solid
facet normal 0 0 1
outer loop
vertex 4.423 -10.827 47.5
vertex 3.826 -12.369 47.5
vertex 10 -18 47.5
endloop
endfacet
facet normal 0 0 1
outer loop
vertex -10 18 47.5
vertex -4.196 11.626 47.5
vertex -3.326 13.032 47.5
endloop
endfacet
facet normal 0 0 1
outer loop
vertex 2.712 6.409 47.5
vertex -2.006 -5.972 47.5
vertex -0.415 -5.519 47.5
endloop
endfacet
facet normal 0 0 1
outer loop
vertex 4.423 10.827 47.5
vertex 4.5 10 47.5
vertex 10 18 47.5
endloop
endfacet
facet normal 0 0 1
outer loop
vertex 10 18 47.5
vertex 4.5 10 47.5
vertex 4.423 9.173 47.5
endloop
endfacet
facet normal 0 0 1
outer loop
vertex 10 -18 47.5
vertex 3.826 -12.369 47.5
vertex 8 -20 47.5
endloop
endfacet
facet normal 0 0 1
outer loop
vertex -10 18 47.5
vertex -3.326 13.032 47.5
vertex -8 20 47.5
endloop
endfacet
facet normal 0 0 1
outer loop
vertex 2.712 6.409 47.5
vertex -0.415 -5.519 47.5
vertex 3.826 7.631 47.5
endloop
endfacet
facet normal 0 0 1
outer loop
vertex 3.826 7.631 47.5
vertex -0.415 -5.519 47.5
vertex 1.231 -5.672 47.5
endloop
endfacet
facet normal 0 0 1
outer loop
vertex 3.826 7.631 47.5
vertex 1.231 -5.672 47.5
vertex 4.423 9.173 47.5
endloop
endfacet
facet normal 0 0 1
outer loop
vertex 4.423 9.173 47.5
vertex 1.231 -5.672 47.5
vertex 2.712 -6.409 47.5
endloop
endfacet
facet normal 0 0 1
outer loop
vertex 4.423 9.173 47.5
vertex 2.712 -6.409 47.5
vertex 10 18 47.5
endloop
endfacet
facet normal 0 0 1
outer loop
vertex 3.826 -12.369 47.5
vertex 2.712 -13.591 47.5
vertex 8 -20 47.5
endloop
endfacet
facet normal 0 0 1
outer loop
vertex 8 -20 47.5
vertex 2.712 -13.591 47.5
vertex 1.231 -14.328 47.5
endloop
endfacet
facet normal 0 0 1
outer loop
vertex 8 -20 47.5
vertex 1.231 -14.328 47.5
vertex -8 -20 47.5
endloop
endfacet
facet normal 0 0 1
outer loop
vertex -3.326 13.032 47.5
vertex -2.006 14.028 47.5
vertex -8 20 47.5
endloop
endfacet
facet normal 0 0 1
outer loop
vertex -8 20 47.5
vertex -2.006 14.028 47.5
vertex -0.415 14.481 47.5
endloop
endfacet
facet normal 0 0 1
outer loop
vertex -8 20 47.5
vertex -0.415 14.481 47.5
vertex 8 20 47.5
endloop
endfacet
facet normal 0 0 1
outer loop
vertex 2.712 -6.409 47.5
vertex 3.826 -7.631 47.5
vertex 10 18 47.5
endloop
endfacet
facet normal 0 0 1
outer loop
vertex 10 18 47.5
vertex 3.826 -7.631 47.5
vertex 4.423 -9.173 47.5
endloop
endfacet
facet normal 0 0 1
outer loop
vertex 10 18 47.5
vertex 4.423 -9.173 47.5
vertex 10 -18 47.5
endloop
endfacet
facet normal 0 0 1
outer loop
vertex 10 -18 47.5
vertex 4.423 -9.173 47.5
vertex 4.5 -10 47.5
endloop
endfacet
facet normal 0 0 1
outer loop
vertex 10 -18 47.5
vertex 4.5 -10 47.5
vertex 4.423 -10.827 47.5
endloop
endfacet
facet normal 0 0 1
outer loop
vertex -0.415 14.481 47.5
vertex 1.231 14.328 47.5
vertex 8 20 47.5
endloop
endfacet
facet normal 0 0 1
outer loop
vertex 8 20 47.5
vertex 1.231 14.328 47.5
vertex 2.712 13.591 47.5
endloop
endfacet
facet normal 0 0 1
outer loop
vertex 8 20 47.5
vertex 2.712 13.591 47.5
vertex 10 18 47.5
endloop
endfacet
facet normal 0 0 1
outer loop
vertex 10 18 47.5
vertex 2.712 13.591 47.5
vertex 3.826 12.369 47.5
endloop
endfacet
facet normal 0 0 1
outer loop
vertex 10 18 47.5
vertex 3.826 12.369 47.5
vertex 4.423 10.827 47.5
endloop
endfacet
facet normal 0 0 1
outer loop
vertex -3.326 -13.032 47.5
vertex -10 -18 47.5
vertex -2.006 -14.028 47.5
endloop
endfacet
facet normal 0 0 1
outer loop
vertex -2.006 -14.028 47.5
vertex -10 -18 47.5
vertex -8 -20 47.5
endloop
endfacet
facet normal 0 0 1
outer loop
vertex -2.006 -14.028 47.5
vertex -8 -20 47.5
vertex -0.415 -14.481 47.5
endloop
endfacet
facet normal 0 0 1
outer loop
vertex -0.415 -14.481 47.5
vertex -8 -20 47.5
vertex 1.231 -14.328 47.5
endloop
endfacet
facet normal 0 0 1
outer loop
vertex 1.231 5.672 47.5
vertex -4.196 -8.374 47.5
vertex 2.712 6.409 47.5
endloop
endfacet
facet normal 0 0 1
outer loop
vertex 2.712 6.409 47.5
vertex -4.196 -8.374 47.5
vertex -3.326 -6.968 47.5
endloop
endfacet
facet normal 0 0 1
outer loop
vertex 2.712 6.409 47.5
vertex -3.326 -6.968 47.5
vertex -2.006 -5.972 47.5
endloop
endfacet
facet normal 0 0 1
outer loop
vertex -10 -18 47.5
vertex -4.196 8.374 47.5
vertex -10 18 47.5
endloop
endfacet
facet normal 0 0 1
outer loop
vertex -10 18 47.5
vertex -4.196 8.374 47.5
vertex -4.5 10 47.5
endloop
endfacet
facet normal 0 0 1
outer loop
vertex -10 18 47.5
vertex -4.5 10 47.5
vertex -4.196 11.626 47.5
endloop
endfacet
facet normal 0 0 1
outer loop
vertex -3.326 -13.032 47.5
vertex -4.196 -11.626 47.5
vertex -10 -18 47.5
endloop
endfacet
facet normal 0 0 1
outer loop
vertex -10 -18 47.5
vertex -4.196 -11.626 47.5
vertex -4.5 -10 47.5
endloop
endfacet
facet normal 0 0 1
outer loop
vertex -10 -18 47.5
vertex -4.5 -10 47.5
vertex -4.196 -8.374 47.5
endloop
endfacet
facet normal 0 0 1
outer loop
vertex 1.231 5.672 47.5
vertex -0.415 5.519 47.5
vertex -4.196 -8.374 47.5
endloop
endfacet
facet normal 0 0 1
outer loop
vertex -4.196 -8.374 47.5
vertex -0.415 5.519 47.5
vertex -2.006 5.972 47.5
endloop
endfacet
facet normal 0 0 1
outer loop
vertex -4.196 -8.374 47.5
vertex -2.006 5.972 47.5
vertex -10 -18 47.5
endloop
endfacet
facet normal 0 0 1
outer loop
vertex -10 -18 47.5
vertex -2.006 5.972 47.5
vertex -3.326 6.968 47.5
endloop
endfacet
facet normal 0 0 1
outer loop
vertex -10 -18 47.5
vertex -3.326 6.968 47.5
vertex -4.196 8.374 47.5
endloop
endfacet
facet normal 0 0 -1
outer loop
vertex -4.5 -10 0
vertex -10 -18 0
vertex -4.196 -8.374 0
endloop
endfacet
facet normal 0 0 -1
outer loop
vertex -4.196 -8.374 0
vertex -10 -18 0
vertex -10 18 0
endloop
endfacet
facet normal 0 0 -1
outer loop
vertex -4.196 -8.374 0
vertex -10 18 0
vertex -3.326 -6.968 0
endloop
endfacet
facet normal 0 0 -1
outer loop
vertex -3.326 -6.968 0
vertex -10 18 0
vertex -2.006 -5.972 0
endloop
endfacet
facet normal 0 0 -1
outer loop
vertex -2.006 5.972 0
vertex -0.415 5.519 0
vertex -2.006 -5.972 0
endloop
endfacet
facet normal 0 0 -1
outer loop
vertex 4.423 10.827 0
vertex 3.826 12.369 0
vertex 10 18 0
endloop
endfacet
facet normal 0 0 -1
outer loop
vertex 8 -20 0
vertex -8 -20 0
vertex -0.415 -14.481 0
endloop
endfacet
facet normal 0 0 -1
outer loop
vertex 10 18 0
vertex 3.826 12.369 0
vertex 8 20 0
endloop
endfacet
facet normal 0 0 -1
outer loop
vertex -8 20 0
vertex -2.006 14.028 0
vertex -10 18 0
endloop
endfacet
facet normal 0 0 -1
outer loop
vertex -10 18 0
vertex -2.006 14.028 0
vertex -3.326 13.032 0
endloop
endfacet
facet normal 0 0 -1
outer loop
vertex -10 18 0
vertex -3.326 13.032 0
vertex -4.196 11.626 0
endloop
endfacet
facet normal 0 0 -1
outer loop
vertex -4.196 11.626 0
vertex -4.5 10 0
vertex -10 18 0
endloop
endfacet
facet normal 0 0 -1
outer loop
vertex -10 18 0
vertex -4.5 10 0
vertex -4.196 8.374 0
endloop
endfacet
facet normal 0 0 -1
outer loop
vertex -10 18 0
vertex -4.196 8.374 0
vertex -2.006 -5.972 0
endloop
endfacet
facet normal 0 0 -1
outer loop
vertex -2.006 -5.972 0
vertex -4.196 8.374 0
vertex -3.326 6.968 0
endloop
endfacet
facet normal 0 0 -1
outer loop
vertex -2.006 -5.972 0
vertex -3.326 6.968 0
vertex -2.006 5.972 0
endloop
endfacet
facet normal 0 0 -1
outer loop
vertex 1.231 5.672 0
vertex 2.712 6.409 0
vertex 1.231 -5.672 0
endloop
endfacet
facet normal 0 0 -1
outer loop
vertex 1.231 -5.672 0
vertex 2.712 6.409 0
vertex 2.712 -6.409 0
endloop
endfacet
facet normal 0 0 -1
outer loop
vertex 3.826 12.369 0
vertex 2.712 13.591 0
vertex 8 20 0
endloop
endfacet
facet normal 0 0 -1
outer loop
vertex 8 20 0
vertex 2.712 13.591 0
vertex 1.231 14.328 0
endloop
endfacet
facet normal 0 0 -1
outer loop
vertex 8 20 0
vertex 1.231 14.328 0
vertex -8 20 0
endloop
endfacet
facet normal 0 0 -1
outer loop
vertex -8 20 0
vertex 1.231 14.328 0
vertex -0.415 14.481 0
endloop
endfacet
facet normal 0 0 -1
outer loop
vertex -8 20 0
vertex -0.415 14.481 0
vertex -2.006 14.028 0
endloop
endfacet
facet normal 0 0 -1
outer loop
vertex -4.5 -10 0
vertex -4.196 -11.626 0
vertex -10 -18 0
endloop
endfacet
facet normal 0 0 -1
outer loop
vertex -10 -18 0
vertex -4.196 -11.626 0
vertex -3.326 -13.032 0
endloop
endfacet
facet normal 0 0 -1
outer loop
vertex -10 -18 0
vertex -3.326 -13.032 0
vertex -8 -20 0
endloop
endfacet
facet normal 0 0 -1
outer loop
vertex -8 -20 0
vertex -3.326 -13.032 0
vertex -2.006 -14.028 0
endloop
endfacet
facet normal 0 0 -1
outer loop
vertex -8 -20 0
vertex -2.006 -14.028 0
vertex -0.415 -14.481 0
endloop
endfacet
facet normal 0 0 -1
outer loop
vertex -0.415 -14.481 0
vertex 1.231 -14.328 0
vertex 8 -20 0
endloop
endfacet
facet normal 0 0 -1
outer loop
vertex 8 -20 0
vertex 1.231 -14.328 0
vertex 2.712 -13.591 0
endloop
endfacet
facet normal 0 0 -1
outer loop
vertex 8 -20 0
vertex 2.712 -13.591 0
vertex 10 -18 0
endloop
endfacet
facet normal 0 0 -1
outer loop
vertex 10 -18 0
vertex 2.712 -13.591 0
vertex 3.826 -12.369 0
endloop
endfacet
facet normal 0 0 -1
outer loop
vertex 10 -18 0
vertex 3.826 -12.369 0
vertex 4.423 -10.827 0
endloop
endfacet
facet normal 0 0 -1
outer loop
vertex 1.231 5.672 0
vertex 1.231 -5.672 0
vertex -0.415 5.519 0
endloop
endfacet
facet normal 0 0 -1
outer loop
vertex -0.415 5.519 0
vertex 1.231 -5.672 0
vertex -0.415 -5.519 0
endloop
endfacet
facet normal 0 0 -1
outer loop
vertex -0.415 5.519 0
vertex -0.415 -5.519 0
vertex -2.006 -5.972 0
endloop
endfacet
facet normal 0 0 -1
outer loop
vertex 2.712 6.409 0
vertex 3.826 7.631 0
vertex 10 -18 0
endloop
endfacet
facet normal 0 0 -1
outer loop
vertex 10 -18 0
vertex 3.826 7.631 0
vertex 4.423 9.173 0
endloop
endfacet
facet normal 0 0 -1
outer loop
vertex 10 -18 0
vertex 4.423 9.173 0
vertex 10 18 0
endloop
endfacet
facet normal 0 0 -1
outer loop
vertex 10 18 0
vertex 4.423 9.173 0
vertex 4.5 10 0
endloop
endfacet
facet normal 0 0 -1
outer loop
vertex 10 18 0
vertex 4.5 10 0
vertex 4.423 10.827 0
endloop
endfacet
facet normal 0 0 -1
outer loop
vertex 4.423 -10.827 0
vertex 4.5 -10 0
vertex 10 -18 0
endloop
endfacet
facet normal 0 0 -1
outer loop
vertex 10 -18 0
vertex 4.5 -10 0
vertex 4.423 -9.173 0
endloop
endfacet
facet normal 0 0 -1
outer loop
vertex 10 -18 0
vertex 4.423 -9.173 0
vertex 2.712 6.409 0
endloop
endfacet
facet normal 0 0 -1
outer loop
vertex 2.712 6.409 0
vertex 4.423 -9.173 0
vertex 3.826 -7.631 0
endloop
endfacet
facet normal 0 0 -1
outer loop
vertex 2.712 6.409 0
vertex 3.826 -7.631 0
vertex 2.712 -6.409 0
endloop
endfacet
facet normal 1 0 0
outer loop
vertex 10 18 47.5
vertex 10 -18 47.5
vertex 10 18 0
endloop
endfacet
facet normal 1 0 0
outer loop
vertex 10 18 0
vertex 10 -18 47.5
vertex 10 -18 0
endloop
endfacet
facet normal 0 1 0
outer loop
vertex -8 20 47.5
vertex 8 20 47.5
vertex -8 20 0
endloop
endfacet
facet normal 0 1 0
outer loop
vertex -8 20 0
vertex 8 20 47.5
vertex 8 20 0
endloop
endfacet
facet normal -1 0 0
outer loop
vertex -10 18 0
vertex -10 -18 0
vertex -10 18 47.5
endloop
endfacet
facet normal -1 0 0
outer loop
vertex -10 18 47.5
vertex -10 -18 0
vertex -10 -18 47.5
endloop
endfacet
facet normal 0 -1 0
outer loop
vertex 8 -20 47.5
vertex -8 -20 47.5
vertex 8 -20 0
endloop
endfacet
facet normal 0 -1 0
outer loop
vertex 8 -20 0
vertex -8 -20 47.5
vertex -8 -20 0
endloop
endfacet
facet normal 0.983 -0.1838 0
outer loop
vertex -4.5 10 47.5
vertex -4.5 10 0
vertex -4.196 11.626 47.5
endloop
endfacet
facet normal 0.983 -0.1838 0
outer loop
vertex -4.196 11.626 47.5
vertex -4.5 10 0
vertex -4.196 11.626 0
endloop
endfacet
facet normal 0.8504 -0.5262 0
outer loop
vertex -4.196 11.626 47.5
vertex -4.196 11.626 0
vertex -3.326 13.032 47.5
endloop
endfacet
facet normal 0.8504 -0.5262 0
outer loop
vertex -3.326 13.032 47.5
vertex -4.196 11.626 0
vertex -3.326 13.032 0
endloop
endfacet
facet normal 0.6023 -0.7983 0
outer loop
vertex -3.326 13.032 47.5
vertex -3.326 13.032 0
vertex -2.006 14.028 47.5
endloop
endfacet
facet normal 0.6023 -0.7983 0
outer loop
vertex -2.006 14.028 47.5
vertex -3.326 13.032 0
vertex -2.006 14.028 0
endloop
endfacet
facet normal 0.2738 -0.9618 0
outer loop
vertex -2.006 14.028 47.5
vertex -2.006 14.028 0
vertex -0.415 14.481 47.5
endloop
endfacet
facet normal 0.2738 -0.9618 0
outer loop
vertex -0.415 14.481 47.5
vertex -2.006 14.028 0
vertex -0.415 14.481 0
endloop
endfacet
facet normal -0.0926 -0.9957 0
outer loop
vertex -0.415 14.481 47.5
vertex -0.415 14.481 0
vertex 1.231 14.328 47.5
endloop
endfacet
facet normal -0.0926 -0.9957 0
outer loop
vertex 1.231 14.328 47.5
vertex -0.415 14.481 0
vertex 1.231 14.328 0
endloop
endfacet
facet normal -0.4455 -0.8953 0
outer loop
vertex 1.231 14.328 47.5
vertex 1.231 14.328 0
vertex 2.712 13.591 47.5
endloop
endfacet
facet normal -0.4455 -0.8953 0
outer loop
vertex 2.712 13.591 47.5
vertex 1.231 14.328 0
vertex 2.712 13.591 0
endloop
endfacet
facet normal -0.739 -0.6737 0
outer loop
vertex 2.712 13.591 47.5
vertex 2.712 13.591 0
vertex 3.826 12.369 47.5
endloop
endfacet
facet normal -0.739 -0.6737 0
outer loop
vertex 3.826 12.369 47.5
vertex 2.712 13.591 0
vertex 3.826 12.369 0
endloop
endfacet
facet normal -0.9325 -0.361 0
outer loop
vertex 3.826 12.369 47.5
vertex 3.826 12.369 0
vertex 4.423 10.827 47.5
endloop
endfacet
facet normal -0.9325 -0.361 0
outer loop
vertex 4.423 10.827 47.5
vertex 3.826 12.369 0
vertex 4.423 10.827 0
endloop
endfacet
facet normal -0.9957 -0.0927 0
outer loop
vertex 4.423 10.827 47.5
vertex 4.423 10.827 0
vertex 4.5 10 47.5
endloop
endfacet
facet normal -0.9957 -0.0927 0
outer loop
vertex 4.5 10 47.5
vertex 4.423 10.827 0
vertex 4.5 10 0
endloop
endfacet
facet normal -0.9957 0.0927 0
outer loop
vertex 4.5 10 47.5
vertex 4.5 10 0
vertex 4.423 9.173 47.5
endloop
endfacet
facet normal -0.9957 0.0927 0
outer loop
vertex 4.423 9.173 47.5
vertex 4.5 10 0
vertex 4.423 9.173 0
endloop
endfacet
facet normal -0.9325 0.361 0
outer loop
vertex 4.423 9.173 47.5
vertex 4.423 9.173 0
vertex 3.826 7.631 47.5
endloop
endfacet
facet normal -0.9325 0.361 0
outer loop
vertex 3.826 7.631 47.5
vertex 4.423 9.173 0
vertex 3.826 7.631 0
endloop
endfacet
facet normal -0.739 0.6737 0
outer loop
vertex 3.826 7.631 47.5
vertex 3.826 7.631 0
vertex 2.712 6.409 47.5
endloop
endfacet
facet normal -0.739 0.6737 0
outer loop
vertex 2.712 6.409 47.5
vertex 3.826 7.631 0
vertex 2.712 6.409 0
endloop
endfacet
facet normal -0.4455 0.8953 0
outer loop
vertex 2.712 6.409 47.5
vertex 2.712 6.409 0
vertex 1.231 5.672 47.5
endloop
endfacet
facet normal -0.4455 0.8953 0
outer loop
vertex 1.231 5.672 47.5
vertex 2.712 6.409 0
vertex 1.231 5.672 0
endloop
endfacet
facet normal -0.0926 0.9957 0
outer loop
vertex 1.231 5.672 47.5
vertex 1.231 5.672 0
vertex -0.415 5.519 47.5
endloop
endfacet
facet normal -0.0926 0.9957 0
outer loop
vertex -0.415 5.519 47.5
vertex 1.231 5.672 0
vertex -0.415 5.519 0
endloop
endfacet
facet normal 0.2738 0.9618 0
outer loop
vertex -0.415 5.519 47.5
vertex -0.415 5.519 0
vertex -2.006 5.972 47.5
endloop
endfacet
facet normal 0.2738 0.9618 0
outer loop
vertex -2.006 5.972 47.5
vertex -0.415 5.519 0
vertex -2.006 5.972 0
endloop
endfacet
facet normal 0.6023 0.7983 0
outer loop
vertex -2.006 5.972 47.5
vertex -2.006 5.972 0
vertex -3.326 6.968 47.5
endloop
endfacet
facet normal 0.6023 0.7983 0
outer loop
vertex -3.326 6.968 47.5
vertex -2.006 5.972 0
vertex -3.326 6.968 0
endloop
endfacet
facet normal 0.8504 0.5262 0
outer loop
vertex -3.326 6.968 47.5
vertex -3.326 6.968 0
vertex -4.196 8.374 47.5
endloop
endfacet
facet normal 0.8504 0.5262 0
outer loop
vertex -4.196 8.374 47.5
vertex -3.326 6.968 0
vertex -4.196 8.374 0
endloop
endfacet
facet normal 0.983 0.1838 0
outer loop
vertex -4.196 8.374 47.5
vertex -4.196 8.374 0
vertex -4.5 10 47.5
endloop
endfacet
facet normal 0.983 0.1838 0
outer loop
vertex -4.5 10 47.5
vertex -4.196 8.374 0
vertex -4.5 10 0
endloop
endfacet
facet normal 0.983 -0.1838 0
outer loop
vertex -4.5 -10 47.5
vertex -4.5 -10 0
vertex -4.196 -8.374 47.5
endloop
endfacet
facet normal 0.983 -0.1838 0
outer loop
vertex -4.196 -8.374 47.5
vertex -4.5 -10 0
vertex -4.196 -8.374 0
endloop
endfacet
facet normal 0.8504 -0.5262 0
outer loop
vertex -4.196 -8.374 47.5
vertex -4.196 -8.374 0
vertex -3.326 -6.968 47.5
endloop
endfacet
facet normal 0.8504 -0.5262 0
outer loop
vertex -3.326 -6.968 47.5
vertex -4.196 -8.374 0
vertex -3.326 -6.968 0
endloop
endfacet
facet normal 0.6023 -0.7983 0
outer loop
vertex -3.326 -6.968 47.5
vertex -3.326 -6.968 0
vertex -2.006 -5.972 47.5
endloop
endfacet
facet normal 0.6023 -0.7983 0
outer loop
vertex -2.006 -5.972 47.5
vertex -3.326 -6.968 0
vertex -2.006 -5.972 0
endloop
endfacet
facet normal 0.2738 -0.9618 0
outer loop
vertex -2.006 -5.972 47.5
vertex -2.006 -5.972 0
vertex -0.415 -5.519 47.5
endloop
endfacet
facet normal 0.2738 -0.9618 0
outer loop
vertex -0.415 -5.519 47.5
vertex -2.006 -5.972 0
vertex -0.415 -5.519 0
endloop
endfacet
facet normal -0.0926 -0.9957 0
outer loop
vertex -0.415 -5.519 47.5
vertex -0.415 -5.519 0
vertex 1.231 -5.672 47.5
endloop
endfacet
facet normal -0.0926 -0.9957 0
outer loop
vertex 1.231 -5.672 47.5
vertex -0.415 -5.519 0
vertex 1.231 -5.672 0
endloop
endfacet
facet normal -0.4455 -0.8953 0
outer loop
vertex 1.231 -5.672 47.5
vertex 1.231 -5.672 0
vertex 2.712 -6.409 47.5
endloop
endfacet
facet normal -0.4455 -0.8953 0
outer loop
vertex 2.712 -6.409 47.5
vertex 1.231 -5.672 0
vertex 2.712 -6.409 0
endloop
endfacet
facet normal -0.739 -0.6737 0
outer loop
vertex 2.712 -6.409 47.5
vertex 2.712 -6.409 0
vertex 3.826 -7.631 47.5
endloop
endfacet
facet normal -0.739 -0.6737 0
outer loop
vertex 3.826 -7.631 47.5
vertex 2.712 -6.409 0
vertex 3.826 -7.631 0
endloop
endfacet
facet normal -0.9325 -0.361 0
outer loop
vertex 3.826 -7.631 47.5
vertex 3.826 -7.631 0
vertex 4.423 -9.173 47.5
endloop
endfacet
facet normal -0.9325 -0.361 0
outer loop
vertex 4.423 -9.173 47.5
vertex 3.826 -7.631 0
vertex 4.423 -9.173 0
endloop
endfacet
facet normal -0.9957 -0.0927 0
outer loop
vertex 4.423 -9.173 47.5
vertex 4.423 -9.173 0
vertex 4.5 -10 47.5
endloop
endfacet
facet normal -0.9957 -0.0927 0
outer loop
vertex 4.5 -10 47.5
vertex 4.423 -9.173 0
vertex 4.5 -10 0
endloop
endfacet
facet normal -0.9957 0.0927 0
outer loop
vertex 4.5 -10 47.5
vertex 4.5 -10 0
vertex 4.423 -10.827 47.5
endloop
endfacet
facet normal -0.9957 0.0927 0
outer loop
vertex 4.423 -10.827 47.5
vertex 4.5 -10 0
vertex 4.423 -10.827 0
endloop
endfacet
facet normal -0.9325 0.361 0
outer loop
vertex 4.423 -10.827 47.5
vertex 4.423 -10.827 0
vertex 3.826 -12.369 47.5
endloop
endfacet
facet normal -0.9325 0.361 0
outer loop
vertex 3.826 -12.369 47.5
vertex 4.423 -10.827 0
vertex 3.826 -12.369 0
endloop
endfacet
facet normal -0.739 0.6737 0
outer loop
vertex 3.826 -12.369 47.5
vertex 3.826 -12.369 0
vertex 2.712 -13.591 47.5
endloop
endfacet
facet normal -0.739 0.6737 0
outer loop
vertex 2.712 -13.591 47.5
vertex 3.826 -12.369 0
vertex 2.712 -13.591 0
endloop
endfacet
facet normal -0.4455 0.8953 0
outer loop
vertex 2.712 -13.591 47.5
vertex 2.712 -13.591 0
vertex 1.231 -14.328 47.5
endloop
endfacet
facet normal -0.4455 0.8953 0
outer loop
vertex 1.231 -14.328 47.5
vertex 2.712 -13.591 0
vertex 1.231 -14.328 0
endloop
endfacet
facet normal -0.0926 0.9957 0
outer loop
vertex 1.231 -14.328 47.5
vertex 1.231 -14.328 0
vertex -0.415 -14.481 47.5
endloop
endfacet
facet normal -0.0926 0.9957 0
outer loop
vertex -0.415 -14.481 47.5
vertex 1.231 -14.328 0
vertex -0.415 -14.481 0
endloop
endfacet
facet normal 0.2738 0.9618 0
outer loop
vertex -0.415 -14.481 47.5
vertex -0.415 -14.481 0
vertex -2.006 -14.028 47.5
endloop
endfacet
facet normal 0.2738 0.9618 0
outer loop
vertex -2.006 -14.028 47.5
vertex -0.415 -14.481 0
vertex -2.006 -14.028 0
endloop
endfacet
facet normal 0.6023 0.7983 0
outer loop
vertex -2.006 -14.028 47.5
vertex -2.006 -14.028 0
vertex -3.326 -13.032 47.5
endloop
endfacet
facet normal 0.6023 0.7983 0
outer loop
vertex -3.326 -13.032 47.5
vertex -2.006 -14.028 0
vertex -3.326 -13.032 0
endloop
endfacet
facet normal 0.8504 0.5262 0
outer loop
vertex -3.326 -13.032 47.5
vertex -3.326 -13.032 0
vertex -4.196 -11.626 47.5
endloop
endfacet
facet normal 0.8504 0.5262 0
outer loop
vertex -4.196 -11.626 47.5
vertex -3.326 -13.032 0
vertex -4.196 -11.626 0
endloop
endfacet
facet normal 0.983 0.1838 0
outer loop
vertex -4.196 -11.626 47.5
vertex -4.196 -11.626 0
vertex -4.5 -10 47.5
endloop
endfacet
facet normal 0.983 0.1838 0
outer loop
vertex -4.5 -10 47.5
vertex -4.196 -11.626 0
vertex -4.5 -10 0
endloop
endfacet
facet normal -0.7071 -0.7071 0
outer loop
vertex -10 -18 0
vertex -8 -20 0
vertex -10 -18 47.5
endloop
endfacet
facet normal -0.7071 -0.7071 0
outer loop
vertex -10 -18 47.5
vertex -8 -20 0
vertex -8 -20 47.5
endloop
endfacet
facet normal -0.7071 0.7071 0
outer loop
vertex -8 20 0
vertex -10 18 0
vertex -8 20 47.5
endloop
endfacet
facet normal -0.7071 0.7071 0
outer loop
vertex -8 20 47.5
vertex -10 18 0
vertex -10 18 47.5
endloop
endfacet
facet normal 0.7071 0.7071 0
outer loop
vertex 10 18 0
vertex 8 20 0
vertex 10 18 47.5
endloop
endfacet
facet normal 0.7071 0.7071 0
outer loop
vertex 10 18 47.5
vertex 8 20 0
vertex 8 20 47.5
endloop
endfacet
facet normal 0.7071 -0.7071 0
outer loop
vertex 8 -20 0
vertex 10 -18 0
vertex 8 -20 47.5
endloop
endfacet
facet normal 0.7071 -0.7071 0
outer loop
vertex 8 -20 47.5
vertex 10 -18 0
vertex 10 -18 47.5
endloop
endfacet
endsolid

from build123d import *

# Parameters (mm, degrees)
SKETCH_1_W      = 20
SKETCH_1_H      = 40
SKETCH_1_R      = 4.5
EXTRUDE_1_DEPTH = 47.5
CHAMFER_1_SIZE  = 2
CHAMFER_2_SIZE  = 2


with BuildPart() as part:
    # 草图1 → 凸台-拉伸1 (new body)
    with BuildSketch(Plane.XY):
        Rectangle(SKETCH_1_W, SKETCH_1_H)
        with Locations((0, 10)):
            Circle(SKETCH_1_R, mode=Mode.SUBTRACT)
        with Locations((0, -10)):
            Circle(SKETCH_1_R, mode=Mode.SUBTRACT)
    extrude(amount=EXTRUDE_1_DEPTH)

    # 倒角1
    chamfer_1_edges = [part.edges().sort_by_distance(p)[0] for p in [
        (-10, -20, 23.75),
    ]]
    chamfer(chamfer_1_edges, length=CHAMFER_1_SIZE)

    # 倒角2
    chamfer_2_edges = [part.edges().sort_by_distance(p)[0] for p in [
        (10, -20, 23.75),
        (-10, 20, 23.75),
        (10, 20, 23.75),
    ]]
    chamfer(chamfer_2_edges, length=CHAMFER_2_SIZE)


solid = part.part
